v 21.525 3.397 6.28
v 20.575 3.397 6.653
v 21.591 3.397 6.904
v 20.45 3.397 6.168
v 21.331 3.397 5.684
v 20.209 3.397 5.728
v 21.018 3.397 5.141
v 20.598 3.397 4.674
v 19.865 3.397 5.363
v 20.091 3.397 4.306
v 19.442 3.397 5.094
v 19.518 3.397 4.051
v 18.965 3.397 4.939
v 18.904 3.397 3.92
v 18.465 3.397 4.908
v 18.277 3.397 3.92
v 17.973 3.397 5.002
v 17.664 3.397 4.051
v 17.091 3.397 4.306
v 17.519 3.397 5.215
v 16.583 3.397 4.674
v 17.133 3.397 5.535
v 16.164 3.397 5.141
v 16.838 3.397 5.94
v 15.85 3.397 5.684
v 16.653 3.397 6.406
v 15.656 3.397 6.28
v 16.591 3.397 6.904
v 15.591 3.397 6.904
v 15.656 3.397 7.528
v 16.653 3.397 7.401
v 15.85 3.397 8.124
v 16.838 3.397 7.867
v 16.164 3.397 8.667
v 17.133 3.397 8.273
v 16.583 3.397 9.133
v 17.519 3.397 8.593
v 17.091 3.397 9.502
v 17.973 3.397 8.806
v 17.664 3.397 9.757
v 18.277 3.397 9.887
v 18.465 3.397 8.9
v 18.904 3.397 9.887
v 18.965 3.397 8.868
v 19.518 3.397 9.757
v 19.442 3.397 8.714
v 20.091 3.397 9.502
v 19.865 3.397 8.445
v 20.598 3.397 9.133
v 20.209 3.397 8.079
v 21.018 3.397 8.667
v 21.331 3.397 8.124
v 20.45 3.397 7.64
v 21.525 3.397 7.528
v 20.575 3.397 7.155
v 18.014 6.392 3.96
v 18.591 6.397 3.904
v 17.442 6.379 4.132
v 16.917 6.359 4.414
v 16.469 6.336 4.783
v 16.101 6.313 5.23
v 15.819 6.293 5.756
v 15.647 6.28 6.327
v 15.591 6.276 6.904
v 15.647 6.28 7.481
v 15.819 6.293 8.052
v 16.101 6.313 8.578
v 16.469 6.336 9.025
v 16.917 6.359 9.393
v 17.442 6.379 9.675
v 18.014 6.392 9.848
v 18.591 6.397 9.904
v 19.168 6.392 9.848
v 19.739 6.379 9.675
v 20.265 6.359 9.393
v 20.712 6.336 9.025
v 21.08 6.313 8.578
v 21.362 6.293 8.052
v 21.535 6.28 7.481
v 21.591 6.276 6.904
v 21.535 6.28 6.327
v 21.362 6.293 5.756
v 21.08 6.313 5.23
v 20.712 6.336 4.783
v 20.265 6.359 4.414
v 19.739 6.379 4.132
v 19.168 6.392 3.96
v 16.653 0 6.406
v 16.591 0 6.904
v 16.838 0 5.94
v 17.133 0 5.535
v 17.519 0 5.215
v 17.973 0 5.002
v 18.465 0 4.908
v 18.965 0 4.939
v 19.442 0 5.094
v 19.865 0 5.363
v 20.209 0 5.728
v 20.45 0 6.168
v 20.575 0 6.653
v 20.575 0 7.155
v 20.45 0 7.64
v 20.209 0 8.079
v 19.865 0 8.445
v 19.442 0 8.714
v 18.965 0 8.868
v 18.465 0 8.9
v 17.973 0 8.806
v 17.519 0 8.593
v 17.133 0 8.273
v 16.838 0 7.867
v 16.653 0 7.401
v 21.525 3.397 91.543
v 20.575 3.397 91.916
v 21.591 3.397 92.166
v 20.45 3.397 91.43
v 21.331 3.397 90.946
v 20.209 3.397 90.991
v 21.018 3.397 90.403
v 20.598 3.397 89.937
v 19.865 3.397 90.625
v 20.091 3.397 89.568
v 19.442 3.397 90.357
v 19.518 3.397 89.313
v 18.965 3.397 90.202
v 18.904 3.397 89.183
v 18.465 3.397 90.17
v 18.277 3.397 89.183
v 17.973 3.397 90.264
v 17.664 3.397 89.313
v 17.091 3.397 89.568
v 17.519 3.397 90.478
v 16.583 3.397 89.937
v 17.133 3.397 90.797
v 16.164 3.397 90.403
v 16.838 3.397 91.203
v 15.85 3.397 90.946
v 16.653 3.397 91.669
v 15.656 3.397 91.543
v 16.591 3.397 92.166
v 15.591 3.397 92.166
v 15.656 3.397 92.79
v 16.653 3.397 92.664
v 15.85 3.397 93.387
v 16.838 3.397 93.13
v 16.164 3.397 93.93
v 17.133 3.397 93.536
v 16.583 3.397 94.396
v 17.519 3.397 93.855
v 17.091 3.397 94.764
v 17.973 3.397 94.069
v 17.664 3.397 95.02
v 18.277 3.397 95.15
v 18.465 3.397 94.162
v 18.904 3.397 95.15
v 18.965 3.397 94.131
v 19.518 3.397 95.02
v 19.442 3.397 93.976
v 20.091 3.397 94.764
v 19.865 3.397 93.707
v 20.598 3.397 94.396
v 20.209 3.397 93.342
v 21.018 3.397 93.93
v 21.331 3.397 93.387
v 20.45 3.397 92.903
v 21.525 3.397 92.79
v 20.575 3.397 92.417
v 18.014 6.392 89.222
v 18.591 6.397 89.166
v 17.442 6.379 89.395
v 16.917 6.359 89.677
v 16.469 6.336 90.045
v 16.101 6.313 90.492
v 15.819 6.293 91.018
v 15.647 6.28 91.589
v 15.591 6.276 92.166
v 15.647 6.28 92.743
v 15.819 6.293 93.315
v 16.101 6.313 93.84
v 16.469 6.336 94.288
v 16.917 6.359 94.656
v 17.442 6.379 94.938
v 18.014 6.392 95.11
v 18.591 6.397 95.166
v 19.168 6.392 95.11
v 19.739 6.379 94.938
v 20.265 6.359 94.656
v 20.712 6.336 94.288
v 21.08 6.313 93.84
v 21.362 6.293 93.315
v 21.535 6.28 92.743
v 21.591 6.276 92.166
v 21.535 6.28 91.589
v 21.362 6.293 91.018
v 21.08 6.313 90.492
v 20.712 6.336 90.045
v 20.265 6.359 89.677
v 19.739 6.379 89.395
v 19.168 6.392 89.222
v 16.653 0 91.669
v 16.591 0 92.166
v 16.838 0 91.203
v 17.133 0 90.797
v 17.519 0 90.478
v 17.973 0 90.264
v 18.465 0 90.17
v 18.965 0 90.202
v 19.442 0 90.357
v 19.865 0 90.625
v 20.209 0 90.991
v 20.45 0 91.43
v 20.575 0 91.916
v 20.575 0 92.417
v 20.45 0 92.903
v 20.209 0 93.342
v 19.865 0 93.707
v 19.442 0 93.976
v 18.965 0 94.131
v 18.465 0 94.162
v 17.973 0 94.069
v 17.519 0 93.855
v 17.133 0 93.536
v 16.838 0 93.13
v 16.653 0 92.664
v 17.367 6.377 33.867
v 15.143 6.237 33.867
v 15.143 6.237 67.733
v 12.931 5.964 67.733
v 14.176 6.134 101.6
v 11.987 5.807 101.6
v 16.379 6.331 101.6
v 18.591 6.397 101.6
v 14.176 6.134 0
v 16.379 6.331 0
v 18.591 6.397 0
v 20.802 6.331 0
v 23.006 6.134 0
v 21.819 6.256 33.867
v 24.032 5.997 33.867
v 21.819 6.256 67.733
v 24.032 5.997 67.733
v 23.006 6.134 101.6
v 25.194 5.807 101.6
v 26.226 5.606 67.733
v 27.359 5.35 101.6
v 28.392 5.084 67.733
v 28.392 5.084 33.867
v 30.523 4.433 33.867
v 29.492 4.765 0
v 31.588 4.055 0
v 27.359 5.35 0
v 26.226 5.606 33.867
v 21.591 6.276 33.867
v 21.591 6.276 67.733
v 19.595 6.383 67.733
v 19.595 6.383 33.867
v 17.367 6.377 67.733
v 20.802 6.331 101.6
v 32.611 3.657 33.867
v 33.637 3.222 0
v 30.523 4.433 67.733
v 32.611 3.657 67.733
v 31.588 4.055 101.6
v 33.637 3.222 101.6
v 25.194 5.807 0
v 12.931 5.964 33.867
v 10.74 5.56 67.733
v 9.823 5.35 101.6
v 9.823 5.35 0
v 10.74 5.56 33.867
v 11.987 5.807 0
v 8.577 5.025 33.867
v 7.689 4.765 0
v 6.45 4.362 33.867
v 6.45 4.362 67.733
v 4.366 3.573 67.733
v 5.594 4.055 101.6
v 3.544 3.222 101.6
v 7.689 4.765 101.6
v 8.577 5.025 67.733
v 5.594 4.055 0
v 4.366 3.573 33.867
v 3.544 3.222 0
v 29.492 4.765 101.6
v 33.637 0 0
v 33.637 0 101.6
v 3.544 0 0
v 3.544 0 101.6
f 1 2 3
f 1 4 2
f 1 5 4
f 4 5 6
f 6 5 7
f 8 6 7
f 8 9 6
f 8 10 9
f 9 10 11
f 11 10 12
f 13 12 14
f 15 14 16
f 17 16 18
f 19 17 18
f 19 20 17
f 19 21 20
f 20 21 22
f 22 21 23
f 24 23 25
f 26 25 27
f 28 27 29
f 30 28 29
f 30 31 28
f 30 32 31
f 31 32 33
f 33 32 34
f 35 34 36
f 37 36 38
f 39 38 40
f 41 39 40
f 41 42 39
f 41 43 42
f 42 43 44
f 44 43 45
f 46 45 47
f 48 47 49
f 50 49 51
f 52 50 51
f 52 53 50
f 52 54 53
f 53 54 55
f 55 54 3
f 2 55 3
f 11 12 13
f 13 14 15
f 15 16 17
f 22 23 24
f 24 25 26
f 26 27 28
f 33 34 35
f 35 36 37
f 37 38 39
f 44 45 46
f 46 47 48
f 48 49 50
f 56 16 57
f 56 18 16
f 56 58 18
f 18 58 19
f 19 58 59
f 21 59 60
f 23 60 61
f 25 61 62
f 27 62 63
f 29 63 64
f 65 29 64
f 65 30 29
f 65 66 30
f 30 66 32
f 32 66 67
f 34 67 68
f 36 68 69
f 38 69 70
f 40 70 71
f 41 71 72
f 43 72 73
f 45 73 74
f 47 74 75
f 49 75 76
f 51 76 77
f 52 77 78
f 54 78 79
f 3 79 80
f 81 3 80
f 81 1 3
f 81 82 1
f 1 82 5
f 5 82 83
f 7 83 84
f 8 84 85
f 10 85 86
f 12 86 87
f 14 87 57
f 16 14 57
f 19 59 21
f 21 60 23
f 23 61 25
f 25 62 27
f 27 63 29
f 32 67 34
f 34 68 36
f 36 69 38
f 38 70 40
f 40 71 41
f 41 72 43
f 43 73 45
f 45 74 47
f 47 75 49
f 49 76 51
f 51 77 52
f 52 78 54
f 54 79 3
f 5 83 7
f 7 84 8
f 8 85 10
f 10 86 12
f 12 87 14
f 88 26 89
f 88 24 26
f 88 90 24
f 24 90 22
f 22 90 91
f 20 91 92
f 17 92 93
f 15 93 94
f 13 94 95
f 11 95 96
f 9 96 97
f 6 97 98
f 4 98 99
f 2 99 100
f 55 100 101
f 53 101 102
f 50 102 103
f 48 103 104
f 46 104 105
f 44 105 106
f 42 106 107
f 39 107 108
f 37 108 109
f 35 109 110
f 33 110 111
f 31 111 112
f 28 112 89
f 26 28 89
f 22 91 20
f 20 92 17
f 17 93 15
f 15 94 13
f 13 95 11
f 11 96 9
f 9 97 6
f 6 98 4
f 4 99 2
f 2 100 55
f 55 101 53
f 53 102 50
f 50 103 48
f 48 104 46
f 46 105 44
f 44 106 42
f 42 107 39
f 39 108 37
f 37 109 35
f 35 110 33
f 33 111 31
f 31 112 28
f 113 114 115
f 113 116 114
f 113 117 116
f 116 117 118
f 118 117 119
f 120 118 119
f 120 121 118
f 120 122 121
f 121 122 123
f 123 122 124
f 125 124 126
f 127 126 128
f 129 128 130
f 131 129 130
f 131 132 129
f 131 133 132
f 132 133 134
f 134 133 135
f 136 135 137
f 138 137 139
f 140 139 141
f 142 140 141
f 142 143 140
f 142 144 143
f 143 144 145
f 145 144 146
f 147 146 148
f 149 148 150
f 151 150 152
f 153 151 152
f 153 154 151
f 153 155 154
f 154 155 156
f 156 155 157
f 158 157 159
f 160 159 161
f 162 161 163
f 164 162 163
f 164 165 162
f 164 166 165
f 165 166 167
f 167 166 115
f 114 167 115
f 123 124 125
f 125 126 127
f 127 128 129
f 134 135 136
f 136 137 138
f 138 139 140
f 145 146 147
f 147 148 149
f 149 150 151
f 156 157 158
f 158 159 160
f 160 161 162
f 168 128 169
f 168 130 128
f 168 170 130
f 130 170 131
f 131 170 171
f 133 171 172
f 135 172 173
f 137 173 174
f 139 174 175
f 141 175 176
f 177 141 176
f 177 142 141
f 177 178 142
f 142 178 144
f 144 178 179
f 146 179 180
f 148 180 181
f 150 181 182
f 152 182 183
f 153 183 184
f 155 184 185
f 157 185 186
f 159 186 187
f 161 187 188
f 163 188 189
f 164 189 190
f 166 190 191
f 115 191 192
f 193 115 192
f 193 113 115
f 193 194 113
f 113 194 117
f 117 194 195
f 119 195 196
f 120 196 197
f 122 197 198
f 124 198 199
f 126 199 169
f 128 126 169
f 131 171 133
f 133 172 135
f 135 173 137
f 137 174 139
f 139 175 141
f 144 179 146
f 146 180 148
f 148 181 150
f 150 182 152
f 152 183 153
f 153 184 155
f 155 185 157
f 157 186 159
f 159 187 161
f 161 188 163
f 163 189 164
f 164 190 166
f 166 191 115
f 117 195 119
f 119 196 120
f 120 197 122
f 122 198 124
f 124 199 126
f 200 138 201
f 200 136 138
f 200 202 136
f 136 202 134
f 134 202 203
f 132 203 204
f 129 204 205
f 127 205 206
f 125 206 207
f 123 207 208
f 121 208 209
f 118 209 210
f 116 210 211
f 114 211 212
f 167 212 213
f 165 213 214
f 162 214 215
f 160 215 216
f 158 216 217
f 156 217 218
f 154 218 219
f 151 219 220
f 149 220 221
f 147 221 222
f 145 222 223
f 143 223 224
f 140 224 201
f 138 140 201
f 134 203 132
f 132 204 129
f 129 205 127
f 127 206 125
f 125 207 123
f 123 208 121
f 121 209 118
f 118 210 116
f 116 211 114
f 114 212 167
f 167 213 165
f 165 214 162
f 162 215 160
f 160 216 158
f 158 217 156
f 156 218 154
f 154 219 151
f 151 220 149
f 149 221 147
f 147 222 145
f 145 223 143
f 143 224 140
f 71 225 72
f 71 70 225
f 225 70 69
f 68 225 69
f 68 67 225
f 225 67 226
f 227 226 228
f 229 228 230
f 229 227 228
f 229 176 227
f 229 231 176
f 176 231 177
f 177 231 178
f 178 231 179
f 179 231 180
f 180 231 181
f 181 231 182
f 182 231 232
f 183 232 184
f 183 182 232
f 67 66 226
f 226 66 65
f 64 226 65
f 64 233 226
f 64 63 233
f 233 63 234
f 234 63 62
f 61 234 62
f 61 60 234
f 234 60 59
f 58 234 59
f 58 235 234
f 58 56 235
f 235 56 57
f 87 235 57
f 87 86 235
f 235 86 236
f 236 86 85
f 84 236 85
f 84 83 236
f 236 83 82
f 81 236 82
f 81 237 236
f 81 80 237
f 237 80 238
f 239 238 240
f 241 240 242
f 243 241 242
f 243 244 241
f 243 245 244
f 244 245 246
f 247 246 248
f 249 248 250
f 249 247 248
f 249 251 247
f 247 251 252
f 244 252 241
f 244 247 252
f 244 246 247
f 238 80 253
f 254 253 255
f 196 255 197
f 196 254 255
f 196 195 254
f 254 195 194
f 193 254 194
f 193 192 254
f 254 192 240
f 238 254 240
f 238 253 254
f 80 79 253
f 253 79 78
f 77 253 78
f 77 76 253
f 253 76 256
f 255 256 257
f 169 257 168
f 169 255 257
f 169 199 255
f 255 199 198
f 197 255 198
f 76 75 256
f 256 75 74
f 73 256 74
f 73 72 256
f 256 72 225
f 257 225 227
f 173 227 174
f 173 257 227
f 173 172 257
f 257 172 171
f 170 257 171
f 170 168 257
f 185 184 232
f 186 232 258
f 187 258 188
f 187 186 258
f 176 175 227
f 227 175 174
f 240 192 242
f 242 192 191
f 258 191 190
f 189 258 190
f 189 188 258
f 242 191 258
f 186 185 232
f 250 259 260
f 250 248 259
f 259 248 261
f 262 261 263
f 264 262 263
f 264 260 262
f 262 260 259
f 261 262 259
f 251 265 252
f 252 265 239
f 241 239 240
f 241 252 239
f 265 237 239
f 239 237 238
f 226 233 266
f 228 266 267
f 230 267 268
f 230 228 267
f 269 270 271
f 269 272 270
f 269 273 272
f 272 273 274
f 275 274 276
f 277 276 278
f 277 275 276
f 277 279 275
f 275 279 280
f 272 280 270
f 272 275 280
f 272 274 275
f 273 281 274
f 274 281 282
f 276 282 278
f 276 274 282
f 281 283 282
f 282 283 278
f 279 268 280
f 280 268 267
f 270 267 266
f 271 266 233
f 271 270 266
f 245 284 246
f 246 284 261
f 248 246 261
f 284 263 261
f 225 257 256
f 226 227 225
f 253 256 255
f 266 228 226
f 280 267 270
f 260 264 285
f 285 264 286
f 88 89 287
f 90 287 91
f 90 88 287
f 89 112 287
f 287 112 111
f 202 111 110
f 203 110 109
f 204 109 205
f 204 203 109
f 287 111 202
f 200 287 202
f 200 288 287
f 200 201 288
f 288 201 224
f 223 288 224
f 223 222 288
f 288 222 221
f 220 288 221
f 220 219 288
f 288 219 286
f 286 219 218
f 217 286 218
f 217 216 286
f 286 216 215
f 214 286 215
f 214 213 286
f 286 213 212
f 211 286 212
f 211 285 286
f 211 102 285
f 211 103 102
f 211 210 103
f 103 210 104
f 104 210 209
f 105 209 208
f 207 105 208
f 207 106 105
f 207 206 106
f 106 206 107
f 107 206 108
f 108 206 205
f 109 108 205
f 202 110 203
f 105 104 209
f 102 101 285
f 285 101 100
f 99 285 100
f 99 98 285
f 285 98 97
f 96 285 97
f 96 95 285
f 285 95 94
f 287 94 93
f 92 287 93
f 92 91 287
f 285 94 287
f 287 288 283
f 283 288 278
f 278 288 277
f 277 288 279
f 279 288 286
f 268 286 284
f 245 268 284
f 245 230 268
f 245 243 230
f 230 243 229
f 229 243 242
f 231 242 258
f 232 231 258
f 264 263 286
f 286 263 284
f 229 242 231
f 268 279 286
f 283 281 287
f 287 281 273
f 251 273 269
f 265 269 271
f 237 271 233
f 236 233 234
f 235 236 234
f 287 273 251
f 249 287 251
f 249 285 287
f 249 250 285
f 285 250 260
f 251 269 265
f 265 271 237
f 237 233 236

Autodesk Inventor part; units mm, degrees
ref_plane "YZ Plane" through (0, 0, 0) normal (1, 0, 0) x (0, 1, 0)
ref_plane "XZ Plane" through (0, 0, 0) normal (0, 1, 0) x (-1, 0, 0)
ref_plane "XY Plane" through (0, 0, 0) normal (0, 0, 1) x (1, 0, 0)
sketch "Sketch1" plane through (0, 0, 0) normal (0, 0, 1) x (1, 0, 0)
  line L0 (0, 0) -> (38.1, 0)
  arc A0 (33.6372, 3.2217) -> (3.5441, 3.2217) centre (18.5906, -30.8441) ccw
  line L1 (-11.7643, 6.3967) -> (19.5622, 6.3967) construction
  line L2 (-11.7643, 6.3967) -> (-11.7643, 0.0467) construction
  line L3 (3.5441, 3.2217) -> (3.5441, 0)
  line L4 (33.6372, 3.2217) -> (33.6372, 0)
  line L5 (3.5441, 0) -> (33.6372, 0)
  dimension "d0" = 38.1
  dimension "d1" = 6.35
extrude "Extrusion1" add sketch "Sketch1" along normal blind 101.6
ref_plane "Work Plane1" through (18.5906, 6.3967, 0) normal (0, -1, 0) x (1, 0, 0)
sketch "Sketch5" plane through (18.5906, 6.3967, 0) normal (0, -1, 0) x (1, 0, 0)
  point P0 (-18.5906, 0)
  point P1 (0, 6.9039)
  point P2 (0, 92.1664)
hole "Hole2" at (18.5906, 6.3967, 6.9039) at (18.5906, 6.3967, 92.1664) direction (0, -1, 0) diameter 4 end through all counterbore diameter 6 counterbore depth 3
properties part number "Beacon Push Bar"
